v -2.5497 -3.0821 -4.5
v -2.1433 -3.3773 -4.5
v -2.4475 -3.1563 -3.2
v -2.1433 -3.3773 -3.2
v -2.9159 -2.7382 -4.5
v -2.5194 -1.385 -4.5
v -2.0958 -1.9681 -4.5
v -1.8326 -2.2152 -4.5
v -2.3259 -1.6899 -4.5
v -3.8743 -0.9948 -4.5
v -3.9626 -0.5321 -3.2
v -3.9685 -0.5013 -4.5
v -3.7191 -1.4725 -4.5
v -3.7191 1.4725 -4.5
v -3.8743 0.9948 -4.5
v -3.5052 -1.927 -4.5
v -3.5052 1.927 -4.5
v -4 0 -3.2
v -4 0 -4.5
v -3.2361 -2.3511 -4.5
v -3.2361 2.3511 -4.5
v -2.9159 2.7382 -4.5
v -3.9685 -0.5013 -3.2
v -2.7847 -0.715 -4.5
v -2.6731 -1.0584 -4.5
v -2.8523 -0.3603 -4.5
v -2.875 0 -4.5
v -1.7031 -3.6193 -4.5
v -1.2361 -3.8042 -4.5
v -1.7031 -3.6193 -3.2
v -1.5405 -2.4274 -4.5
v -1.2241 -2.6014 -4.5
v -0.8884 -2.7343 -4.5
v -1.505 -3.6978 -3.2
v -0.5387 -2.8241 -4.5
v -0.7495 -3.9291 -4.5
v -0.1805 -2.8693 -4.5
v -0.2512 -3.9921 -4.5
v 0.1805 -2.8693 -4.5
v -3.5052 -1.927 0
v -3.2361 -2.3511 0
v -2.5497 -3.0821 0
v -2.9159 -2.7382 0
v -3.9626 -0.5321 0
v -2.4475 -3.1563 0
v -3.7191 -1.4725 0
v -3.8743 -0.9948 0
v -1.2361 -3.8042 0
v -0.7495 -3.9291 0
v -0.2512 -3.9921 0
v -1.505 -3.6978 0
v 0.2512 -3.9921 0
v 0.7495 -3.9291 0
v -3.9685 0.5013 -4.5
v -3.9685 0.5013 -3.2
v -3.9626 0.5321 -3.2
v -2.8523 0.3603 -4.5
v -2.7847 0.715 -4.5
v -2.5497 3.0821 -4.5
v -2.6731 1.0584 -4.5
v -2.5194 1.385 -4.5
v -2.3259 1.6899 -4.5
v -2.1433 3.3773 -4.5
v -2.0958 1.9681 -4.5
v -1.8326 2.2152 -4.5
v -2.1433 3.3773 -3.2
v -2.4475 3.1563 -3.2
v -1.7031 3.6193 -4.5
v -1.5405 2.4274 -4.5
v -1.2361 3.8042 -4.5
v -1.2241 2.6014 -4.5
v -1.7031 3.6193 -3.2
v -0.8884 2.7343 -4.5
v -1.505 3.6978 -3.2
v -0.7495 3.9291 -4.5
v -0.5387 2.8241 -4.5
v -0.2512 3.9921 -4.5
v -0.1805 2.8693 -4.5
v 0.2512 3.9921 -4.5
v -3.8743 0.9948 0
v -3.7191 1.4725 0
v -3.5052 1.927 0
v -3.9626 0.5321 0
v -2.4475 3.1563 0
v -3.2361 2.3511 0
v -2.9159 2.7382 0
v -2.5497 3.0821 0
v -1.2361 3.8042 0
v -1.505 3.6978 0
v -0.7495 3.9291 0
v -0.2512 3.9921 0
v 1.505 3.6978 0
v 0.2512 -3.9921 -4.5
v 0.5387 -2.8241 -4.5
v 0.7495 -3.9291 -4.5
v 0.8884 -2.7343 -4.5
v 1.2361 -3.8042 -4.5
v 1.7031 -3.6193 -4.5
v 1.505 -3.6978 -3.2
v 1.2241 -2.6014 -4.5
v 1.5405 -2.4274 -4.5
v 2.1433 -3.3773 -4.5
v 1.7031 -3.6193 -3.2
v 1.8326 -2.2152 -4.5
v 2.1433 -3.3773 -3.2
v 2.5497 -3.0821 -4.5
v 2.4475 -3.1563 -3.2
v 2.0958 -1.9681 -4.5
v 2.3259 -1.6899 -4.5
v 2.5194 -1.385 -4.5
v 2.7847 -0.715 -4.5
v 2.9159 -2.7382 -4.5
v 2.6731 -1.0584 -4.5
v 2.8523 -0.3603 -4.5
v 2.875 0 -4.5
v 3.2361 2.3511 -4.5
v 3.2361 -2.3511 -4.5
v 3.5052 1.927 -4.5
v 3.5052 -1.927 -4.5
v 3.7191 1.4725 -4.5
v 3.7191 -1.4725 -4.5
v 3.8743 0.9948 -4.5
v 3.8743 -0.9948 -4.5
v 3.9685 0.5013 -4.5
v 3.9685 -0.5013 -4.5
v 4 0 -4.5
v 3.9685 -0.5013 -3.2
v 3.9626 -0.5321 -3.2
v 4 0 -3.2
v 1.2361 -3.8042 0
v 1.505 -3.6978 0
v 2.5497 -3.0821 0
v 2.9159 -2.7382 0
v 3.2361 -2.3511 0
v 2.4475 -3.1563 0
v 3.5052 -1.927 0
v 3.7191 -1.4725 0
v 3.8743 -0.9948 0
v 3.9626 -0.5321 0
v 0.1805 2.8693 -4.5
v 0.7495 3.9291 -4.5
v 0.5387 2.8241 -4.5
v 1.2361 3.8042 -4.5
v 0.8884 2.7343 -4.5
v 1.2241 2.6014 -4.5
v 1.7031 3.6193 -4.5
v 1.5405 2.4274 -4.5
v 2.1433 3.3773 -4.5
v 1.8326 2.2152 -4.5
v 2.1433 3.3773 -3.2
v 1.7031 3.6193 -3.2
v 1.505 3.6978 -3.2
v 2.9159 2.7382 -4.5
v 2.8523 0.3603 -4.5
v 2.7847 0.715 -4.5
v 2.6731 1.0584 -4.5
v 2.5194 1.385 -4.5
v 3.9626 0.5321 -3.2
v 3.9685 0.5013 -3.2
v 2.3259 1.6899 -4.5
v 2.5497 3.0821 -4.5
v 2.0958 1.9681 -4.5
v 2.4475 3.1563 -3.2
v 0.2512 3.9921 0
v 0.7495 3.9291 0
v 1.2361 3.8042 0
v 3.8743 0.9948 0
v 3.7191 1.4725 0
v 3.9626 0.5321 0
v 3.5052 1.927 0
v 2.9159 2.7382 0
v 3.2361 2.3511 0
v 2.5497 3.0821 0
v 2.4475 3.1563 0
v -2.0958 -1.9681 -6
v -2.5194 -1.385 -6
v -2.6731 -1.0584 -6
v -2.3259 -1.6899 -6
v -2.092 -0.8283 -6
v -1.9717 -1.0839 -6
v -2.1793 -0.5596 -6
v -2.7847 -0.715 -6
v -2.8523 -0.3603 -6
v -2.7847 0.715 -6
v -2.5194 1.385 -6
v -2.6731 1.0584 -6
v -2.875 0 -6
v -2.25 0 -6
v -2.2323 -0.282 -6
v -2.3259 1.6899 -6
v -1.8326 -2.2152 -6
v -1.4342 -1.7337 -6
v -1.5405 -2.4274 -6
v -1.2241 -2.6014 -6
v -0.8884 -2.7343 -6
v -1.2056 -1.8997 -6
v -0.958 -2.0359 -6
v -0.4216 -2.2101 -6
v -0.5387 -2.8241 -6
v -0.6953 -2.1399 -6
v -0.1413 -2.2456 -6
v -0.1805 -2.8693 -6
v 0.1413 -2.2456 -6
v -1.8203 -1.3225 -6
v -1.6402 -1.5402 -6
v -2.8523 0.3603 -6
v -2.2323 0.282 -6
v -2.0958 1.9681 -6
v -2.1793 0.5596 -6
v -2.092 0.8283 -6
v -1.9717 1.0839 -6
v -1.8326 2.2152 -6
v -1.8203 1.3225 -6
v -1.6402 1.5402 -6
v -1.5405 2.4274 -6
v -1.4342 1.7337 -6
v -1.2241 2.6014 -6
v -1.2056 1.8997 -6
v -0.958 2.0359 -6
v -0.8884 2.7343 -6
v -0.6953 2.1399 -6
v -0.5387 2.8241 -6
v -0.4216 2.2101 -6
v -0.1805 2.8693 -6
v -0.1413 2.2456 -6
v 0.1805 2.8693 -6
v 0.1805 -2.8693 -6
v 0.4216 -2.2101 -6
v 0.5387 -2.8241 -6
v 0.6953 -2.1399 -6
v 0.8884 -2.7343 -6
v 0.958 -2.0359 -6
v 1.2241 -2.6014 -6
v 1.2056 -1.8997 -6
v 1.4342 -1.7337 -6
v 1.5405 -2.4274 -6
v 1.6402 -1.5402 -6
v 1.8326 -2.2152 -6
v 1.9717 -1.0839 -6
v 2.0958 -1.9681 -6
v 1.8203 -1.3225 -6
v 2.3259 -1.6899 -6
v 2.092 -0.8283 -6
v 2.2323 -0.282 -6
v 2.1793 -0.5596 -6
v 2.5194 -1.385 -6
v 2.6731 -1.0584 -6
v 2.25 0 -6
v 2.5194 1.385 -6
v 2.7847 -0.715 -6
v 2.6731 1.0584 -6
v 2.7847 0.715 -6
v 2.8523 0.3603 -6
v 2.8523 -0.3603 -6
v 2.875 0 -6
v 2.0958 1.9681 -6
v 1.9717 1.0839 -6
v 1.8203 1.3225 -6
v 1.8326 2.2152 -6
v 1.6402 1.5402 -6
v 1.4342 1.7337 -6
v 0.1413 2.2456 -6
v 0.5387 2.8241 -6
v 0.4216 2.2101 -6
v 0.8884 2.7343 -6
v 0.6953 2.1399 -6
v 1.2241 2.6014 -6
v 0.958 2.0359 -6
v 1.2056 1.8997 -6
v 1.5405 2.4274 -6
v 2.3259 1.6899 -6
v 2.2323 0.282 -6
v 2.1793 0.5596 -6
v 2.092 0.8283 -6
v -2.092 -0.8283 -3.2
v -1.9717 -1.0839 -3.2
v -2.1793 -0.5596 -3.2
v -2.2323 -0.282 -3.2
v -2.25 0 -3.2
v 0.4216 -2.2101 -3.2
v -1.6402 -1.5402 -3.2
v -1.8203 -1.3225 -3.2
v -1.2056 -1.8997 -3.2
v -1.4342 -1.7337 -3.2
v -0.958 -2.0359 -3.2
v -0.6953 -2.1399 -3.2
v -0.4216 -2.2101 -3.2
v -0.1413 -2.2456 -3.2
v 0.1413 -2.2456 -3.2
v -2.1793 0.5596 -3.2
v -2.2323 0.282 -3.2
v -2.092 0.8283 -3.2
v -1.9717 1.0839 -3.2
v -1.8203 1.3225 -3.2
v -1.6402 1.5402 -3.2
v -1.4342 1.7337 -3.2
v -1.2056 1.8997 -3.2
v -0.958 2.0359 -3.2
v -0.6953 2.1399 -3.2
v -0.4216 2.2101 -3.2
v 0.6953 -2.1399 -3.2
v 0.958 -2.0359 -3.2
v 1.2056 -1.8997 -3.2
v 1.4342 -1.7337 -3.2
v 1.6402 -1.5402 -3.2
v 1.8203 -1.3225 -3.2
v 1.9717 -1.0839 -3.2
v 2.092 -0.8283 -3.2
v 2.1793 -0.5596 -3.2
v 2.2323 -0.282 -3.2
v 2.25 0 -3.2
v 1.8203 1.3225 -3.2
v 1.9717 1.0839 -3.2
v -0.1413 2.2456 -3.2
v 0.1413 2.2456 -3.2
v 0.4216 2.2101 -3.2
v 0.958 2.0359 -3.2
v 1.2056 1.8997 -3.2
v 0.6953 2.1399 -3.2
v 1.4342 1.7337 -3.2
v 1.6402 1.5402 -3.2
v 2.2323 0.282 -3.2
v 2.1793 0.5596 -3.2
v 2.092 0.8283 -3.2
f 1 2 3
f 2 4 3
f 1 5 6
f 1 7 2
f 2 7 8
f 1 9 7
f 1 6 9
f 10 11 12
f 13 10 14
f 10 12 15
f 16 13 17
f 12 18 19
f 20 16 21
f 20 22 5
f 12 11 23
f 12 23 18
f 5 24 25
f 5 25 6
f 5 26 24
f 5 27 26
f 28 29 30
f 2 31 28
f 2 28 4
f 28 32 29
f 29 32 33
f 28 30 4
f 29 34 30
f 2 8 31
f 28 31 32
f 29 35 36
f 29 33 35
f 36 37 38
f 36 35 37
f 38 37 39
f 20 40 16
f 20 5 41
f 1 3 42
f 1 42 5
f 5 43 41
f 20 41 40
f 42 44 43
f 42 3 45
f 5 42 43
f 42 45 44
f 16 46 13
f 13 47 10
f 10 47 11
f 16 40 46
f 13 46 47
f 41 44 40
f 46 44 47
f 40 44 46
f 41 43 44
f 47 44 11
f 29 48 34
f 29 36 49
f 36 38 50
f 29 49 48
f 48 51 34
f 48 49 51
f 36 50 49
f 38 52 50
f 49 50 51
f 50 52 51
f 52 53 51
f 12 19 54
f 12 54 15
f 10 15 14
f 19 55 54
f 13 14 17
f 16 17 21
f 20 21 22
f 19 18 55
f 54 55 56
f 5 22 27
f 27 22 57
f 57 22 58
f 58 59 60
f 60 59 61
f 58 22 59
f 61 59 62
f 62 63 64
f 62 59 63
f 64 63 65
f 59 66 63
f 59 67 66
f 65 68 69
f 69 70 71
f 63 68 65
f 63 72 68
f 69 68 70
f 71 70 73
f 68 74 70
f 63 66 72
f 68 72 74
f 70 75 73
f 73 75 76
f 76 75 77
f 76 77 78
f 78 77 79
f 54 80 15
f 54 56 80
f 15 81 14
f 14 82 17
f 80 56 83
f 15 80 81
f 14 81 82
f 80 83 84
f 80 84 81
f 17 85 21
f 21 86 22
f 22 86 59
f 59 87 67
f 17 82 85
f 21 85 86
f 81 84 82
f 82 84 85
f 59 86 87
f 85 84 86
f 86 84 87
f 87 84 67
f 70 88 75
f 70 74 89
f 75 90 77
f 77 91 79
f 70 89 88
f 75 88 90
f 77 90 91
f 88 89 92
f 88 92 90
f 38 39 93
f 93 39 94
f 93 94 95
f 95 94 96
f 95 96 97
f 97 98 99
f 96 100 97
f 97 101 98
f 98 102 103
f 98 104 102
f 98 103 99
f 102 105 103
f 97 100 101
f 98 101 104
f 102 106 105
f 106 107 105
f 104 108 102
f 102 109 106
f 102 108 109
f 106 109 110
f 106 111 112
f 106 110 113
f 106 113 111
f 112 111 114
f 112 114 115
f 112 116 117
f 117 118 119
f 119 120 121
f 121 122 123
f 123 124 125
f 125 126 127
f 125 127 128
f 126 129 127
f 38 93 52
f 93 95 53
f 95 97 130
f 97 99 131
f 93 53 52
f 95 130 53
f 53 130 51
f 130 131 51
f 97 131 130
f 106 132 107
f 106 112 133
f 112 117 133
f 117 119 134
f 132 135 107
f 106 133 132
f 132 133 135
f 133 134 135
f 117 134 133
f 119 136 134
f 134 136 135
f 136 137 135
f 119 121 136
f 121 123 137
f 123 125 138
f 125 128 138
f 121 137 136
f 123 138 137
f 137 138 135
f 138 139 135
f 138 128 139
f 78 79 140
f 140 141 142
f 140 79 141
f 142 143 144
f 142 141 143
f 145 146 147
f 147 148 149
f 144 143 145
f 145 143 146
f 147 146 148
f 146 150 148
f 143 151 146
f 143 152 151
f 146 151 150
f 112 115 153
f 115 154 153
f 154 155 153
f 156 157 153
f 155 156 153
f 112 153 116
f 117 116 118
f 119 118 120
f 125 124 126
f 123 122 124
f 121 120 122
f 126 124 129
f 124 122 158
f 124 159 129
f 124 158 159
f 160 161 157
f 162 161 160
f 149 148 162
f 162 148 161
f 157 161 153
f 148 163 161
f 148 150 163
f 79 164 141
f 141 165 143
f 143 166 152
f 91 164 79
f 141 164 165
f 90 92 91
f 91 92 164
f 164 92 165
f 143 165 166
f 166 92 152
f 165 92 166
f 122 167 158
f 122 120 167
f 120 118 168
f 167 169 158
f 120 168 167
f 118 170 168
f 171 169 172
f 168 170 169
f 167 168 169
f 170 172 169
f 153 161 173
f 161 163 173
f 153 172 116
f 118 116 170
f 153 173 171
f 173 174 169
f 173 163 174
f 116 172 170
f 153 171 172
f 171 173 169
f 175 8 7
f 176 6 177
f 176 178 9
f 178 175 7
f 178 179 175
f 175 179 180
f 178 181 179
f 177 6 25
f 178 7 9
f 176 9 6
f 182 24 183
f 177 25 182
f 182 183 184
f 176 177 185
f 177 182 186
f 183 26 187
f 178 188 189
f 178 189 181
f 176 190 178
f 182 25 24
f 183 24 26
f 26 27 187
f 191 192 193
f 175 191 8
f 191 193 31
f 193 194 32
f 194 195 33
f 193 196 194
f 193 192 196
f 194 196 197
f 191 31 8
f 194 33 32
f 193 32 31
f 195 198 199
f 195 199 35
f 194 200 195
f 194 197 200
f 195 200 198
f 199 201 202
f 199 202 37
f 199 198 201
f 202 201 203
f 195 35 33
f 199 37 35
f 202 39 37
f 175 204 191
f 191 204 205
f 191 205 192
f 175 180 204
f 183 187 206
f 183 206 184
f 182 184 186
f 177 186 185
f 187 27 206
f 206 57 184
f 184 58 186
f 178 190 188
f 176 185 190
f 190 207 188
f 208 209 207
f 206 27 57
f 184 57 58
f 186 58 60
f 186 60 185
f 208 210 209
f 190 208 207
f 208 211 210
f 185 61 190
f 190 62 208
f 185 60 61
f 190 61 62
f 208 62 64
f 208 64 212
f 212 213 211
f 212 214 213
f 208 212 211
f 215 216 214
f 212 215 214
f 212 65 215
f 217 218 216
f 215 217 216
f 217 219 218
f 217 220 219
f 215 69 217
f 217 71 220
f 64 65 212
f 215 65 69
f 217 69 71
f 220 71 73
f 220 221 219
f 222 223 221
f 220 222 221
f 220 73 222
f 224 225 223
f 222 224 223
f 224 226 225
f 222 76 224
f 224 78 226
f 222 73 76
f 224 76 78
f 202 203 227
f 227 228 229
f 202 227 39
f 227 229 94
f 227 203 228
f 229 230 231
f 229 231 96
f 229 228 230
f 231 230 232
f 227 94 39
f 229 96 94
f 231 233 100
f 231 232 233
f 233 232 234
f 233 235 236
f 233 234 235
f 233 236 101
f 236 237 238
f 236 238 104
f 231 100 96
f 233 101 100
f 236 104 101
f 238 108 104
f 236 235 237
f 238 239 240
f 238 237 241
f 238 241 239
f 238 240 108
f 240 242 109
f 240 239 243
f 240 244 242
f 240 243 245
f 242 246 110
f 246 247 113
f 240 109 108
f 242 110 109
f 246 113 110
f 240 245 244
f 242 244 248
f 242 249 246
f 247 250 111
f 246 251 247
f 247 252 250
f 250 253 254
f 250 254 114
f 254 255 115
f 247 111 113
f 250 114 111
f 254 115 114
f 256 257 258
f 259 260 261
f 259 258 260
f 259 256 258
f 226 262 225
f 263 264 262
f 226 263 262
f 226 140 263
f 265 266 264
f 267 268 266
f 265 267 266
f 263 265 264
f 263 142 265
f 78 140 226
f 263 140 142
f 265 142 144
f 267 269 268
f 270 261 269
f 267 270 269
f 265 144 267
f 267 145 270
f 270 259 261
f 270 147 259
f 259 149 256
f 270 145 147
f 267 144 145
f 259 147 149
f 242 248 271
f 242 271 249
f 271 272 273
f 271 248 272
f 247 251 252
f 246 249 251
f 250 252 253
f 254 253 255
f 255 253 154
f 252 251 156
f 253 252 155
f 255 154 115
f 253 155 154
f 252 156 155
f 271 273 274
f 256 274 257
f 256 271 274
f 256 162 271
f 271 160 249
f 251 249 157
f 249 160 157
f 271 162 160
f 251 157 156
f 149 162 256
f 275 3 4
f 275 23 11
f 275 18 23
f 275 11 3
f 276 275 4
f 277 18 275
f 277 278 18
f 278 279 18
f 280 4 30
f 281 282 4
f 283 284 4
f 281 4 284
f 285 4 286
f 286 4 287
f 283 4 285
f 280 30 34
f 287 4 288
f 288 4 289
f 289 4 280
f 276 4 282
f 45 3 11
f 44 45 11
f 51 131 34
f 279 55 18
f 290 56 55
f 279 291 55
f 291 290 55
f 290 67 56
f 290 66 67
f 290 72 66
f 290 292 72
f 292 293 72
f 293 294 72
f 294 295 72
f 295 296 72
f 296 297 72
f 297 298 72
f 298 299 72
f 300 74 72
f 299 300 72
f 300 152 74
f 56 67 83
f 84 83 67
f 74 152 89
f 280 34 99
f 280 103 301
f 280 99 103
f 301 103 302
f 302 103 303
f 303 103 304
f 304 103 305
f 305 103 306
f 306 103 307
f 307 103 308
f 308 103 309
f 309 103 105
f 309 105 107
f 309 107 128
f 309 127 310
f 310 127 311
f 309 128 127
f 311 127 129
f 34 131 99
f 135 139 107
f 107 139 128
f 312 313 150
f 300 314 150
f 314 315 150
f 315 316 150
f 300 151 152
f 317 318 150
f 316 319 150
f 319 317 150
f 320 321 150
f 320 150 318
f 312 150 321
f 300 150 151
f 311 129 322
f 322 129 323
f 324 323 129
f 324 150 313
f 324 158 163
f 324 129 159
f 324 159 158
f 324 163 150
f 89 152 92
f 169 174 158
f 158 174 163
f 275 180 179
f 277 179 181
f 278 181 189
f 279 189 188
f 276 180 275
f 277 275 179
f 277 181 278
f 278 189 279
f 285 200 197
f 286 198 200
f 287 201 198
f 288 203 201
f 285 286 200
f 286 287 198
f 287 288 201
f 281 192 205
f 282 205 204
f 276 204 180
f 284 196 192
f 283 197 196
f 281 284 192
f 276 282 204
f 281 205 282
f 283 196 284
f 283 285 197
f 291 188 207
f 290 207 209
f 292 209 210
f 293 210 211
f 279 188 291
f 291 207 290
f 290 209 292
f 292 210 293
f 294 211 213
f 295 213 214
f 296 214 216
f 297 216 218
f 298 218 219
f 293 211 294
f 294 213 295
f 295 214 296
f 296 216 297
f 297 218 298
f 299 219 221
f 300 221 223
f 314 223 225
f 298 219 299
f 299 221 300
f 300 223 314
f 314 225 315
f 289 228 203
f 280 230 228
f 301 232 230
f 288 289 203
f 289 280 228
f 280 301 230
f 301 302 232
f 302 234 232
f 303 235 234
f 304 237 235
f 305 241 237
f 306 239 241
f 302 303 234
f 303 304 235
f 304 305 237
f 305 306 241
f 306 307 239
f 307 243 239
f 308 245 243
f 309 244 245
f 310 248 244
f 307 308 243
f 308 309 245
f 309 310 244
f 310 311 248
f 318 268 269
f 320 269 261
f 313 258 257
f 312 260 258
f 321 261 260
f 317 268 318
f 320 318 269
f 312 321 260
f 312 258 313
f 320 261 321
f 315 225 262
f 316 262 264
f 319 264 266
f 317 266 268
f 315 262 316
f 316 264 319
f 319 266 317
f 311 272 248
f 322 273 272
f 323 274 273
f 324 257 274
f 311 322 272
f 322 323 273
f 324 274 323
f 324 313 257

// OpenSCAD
$fn = 50;

difference() {
	union() {
		translate(v = [0, 0, -4.5]) {
			cylinder(h = 4.5, r = 4.0);
		}
		#translate(v = [0, 0, -6.0]) {
			cylinder(h = 6, r = 2.875);
		}
	}
	union() {
		translate(v = [0, 0, 0]) {
			rotate(a = [0, 0, 0]) {
				difference() {
					union() {
						translate(v = [0, 0, -3.2]) {
							linear_extrude(height = 3.2) {
								polygon(points = [[4.2698, 0.0], [2.1349000000000005, 3.697755269078796], [-2.134899999999999, 3.6977552690787965], [-4.2698, 5.228996902999369e-16], [-2.134900000000002, -3.6977552690787956], [2.1348999999999974, -3.697755269078798]]);
							}
						}
					}
					union();
				}
			}
		}
		#translate(v = [0, 0, -100.0]) {
			cylinder(h = 200, r = 2.25);
		}
	}
}
